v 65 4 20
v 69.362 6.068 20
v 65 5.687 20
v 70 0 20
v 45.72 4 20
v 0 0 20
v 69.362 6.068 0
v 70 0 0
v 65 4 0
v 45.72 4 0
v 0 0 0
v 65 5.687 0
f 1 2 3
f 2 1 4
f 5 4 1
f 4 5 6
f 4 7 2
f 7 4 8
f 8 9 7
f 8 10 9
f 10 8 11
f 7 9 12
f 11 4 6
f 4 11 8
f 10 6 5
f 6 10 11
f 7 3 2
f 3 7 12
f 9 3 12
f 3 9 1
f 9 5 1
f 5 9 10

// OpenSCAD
//Title: Wedge Module
//Author: Alex English - ProtoParadigm
//Date: 1/4/2013
//License: Creative Commons - Share Alike - Attribution

//Usage: Include in your other .scad projects and call wedge with arguments for the height of the wedge, the radius of the wedge, and the angle of the wedge in degrees.  The resulting wedge will be placed with the point at the origin, extending into the z axis, with the angle starting at the x axis and extending counter-clockwise as per the right-hand rule.

//Updated: 1/12/2013 - Increased dimensions of wedge to be revoved when angle is more than 180 as per suggestion from kitwallace.

module wedge_180(h, r, d)
{
	rotate(d) difference()
	{
		rotate(180-d) difference()
		{
			cylinder(h = h, r = r);
			translate([-(r+1), 0, -1]) cube([r*2+2, r+1, h+2]);
		}
		translate([-(r+1), 0, -1]) cube([r*2+2, r+1, h+2]);
	}
}

module wedge(h, r, d)
{
	if(d <= 180)
		wedge_180(h, r, d);
	else
		rotate(d) difference()
		{
			cylinder(h = h, r = r);
			translate([0, 0, -1]) wedge_180(h+2, r+1, 360-d);
		}
}

//Example: wedge(10, 20, 145); //would create a wedge 10 high, with a radius of 20, and an angle of 33 degrees.

difference() {
    wedge(20, 70, 5);
    translate([40, 4, -1])
        cube([25, 5, 100]);
}
